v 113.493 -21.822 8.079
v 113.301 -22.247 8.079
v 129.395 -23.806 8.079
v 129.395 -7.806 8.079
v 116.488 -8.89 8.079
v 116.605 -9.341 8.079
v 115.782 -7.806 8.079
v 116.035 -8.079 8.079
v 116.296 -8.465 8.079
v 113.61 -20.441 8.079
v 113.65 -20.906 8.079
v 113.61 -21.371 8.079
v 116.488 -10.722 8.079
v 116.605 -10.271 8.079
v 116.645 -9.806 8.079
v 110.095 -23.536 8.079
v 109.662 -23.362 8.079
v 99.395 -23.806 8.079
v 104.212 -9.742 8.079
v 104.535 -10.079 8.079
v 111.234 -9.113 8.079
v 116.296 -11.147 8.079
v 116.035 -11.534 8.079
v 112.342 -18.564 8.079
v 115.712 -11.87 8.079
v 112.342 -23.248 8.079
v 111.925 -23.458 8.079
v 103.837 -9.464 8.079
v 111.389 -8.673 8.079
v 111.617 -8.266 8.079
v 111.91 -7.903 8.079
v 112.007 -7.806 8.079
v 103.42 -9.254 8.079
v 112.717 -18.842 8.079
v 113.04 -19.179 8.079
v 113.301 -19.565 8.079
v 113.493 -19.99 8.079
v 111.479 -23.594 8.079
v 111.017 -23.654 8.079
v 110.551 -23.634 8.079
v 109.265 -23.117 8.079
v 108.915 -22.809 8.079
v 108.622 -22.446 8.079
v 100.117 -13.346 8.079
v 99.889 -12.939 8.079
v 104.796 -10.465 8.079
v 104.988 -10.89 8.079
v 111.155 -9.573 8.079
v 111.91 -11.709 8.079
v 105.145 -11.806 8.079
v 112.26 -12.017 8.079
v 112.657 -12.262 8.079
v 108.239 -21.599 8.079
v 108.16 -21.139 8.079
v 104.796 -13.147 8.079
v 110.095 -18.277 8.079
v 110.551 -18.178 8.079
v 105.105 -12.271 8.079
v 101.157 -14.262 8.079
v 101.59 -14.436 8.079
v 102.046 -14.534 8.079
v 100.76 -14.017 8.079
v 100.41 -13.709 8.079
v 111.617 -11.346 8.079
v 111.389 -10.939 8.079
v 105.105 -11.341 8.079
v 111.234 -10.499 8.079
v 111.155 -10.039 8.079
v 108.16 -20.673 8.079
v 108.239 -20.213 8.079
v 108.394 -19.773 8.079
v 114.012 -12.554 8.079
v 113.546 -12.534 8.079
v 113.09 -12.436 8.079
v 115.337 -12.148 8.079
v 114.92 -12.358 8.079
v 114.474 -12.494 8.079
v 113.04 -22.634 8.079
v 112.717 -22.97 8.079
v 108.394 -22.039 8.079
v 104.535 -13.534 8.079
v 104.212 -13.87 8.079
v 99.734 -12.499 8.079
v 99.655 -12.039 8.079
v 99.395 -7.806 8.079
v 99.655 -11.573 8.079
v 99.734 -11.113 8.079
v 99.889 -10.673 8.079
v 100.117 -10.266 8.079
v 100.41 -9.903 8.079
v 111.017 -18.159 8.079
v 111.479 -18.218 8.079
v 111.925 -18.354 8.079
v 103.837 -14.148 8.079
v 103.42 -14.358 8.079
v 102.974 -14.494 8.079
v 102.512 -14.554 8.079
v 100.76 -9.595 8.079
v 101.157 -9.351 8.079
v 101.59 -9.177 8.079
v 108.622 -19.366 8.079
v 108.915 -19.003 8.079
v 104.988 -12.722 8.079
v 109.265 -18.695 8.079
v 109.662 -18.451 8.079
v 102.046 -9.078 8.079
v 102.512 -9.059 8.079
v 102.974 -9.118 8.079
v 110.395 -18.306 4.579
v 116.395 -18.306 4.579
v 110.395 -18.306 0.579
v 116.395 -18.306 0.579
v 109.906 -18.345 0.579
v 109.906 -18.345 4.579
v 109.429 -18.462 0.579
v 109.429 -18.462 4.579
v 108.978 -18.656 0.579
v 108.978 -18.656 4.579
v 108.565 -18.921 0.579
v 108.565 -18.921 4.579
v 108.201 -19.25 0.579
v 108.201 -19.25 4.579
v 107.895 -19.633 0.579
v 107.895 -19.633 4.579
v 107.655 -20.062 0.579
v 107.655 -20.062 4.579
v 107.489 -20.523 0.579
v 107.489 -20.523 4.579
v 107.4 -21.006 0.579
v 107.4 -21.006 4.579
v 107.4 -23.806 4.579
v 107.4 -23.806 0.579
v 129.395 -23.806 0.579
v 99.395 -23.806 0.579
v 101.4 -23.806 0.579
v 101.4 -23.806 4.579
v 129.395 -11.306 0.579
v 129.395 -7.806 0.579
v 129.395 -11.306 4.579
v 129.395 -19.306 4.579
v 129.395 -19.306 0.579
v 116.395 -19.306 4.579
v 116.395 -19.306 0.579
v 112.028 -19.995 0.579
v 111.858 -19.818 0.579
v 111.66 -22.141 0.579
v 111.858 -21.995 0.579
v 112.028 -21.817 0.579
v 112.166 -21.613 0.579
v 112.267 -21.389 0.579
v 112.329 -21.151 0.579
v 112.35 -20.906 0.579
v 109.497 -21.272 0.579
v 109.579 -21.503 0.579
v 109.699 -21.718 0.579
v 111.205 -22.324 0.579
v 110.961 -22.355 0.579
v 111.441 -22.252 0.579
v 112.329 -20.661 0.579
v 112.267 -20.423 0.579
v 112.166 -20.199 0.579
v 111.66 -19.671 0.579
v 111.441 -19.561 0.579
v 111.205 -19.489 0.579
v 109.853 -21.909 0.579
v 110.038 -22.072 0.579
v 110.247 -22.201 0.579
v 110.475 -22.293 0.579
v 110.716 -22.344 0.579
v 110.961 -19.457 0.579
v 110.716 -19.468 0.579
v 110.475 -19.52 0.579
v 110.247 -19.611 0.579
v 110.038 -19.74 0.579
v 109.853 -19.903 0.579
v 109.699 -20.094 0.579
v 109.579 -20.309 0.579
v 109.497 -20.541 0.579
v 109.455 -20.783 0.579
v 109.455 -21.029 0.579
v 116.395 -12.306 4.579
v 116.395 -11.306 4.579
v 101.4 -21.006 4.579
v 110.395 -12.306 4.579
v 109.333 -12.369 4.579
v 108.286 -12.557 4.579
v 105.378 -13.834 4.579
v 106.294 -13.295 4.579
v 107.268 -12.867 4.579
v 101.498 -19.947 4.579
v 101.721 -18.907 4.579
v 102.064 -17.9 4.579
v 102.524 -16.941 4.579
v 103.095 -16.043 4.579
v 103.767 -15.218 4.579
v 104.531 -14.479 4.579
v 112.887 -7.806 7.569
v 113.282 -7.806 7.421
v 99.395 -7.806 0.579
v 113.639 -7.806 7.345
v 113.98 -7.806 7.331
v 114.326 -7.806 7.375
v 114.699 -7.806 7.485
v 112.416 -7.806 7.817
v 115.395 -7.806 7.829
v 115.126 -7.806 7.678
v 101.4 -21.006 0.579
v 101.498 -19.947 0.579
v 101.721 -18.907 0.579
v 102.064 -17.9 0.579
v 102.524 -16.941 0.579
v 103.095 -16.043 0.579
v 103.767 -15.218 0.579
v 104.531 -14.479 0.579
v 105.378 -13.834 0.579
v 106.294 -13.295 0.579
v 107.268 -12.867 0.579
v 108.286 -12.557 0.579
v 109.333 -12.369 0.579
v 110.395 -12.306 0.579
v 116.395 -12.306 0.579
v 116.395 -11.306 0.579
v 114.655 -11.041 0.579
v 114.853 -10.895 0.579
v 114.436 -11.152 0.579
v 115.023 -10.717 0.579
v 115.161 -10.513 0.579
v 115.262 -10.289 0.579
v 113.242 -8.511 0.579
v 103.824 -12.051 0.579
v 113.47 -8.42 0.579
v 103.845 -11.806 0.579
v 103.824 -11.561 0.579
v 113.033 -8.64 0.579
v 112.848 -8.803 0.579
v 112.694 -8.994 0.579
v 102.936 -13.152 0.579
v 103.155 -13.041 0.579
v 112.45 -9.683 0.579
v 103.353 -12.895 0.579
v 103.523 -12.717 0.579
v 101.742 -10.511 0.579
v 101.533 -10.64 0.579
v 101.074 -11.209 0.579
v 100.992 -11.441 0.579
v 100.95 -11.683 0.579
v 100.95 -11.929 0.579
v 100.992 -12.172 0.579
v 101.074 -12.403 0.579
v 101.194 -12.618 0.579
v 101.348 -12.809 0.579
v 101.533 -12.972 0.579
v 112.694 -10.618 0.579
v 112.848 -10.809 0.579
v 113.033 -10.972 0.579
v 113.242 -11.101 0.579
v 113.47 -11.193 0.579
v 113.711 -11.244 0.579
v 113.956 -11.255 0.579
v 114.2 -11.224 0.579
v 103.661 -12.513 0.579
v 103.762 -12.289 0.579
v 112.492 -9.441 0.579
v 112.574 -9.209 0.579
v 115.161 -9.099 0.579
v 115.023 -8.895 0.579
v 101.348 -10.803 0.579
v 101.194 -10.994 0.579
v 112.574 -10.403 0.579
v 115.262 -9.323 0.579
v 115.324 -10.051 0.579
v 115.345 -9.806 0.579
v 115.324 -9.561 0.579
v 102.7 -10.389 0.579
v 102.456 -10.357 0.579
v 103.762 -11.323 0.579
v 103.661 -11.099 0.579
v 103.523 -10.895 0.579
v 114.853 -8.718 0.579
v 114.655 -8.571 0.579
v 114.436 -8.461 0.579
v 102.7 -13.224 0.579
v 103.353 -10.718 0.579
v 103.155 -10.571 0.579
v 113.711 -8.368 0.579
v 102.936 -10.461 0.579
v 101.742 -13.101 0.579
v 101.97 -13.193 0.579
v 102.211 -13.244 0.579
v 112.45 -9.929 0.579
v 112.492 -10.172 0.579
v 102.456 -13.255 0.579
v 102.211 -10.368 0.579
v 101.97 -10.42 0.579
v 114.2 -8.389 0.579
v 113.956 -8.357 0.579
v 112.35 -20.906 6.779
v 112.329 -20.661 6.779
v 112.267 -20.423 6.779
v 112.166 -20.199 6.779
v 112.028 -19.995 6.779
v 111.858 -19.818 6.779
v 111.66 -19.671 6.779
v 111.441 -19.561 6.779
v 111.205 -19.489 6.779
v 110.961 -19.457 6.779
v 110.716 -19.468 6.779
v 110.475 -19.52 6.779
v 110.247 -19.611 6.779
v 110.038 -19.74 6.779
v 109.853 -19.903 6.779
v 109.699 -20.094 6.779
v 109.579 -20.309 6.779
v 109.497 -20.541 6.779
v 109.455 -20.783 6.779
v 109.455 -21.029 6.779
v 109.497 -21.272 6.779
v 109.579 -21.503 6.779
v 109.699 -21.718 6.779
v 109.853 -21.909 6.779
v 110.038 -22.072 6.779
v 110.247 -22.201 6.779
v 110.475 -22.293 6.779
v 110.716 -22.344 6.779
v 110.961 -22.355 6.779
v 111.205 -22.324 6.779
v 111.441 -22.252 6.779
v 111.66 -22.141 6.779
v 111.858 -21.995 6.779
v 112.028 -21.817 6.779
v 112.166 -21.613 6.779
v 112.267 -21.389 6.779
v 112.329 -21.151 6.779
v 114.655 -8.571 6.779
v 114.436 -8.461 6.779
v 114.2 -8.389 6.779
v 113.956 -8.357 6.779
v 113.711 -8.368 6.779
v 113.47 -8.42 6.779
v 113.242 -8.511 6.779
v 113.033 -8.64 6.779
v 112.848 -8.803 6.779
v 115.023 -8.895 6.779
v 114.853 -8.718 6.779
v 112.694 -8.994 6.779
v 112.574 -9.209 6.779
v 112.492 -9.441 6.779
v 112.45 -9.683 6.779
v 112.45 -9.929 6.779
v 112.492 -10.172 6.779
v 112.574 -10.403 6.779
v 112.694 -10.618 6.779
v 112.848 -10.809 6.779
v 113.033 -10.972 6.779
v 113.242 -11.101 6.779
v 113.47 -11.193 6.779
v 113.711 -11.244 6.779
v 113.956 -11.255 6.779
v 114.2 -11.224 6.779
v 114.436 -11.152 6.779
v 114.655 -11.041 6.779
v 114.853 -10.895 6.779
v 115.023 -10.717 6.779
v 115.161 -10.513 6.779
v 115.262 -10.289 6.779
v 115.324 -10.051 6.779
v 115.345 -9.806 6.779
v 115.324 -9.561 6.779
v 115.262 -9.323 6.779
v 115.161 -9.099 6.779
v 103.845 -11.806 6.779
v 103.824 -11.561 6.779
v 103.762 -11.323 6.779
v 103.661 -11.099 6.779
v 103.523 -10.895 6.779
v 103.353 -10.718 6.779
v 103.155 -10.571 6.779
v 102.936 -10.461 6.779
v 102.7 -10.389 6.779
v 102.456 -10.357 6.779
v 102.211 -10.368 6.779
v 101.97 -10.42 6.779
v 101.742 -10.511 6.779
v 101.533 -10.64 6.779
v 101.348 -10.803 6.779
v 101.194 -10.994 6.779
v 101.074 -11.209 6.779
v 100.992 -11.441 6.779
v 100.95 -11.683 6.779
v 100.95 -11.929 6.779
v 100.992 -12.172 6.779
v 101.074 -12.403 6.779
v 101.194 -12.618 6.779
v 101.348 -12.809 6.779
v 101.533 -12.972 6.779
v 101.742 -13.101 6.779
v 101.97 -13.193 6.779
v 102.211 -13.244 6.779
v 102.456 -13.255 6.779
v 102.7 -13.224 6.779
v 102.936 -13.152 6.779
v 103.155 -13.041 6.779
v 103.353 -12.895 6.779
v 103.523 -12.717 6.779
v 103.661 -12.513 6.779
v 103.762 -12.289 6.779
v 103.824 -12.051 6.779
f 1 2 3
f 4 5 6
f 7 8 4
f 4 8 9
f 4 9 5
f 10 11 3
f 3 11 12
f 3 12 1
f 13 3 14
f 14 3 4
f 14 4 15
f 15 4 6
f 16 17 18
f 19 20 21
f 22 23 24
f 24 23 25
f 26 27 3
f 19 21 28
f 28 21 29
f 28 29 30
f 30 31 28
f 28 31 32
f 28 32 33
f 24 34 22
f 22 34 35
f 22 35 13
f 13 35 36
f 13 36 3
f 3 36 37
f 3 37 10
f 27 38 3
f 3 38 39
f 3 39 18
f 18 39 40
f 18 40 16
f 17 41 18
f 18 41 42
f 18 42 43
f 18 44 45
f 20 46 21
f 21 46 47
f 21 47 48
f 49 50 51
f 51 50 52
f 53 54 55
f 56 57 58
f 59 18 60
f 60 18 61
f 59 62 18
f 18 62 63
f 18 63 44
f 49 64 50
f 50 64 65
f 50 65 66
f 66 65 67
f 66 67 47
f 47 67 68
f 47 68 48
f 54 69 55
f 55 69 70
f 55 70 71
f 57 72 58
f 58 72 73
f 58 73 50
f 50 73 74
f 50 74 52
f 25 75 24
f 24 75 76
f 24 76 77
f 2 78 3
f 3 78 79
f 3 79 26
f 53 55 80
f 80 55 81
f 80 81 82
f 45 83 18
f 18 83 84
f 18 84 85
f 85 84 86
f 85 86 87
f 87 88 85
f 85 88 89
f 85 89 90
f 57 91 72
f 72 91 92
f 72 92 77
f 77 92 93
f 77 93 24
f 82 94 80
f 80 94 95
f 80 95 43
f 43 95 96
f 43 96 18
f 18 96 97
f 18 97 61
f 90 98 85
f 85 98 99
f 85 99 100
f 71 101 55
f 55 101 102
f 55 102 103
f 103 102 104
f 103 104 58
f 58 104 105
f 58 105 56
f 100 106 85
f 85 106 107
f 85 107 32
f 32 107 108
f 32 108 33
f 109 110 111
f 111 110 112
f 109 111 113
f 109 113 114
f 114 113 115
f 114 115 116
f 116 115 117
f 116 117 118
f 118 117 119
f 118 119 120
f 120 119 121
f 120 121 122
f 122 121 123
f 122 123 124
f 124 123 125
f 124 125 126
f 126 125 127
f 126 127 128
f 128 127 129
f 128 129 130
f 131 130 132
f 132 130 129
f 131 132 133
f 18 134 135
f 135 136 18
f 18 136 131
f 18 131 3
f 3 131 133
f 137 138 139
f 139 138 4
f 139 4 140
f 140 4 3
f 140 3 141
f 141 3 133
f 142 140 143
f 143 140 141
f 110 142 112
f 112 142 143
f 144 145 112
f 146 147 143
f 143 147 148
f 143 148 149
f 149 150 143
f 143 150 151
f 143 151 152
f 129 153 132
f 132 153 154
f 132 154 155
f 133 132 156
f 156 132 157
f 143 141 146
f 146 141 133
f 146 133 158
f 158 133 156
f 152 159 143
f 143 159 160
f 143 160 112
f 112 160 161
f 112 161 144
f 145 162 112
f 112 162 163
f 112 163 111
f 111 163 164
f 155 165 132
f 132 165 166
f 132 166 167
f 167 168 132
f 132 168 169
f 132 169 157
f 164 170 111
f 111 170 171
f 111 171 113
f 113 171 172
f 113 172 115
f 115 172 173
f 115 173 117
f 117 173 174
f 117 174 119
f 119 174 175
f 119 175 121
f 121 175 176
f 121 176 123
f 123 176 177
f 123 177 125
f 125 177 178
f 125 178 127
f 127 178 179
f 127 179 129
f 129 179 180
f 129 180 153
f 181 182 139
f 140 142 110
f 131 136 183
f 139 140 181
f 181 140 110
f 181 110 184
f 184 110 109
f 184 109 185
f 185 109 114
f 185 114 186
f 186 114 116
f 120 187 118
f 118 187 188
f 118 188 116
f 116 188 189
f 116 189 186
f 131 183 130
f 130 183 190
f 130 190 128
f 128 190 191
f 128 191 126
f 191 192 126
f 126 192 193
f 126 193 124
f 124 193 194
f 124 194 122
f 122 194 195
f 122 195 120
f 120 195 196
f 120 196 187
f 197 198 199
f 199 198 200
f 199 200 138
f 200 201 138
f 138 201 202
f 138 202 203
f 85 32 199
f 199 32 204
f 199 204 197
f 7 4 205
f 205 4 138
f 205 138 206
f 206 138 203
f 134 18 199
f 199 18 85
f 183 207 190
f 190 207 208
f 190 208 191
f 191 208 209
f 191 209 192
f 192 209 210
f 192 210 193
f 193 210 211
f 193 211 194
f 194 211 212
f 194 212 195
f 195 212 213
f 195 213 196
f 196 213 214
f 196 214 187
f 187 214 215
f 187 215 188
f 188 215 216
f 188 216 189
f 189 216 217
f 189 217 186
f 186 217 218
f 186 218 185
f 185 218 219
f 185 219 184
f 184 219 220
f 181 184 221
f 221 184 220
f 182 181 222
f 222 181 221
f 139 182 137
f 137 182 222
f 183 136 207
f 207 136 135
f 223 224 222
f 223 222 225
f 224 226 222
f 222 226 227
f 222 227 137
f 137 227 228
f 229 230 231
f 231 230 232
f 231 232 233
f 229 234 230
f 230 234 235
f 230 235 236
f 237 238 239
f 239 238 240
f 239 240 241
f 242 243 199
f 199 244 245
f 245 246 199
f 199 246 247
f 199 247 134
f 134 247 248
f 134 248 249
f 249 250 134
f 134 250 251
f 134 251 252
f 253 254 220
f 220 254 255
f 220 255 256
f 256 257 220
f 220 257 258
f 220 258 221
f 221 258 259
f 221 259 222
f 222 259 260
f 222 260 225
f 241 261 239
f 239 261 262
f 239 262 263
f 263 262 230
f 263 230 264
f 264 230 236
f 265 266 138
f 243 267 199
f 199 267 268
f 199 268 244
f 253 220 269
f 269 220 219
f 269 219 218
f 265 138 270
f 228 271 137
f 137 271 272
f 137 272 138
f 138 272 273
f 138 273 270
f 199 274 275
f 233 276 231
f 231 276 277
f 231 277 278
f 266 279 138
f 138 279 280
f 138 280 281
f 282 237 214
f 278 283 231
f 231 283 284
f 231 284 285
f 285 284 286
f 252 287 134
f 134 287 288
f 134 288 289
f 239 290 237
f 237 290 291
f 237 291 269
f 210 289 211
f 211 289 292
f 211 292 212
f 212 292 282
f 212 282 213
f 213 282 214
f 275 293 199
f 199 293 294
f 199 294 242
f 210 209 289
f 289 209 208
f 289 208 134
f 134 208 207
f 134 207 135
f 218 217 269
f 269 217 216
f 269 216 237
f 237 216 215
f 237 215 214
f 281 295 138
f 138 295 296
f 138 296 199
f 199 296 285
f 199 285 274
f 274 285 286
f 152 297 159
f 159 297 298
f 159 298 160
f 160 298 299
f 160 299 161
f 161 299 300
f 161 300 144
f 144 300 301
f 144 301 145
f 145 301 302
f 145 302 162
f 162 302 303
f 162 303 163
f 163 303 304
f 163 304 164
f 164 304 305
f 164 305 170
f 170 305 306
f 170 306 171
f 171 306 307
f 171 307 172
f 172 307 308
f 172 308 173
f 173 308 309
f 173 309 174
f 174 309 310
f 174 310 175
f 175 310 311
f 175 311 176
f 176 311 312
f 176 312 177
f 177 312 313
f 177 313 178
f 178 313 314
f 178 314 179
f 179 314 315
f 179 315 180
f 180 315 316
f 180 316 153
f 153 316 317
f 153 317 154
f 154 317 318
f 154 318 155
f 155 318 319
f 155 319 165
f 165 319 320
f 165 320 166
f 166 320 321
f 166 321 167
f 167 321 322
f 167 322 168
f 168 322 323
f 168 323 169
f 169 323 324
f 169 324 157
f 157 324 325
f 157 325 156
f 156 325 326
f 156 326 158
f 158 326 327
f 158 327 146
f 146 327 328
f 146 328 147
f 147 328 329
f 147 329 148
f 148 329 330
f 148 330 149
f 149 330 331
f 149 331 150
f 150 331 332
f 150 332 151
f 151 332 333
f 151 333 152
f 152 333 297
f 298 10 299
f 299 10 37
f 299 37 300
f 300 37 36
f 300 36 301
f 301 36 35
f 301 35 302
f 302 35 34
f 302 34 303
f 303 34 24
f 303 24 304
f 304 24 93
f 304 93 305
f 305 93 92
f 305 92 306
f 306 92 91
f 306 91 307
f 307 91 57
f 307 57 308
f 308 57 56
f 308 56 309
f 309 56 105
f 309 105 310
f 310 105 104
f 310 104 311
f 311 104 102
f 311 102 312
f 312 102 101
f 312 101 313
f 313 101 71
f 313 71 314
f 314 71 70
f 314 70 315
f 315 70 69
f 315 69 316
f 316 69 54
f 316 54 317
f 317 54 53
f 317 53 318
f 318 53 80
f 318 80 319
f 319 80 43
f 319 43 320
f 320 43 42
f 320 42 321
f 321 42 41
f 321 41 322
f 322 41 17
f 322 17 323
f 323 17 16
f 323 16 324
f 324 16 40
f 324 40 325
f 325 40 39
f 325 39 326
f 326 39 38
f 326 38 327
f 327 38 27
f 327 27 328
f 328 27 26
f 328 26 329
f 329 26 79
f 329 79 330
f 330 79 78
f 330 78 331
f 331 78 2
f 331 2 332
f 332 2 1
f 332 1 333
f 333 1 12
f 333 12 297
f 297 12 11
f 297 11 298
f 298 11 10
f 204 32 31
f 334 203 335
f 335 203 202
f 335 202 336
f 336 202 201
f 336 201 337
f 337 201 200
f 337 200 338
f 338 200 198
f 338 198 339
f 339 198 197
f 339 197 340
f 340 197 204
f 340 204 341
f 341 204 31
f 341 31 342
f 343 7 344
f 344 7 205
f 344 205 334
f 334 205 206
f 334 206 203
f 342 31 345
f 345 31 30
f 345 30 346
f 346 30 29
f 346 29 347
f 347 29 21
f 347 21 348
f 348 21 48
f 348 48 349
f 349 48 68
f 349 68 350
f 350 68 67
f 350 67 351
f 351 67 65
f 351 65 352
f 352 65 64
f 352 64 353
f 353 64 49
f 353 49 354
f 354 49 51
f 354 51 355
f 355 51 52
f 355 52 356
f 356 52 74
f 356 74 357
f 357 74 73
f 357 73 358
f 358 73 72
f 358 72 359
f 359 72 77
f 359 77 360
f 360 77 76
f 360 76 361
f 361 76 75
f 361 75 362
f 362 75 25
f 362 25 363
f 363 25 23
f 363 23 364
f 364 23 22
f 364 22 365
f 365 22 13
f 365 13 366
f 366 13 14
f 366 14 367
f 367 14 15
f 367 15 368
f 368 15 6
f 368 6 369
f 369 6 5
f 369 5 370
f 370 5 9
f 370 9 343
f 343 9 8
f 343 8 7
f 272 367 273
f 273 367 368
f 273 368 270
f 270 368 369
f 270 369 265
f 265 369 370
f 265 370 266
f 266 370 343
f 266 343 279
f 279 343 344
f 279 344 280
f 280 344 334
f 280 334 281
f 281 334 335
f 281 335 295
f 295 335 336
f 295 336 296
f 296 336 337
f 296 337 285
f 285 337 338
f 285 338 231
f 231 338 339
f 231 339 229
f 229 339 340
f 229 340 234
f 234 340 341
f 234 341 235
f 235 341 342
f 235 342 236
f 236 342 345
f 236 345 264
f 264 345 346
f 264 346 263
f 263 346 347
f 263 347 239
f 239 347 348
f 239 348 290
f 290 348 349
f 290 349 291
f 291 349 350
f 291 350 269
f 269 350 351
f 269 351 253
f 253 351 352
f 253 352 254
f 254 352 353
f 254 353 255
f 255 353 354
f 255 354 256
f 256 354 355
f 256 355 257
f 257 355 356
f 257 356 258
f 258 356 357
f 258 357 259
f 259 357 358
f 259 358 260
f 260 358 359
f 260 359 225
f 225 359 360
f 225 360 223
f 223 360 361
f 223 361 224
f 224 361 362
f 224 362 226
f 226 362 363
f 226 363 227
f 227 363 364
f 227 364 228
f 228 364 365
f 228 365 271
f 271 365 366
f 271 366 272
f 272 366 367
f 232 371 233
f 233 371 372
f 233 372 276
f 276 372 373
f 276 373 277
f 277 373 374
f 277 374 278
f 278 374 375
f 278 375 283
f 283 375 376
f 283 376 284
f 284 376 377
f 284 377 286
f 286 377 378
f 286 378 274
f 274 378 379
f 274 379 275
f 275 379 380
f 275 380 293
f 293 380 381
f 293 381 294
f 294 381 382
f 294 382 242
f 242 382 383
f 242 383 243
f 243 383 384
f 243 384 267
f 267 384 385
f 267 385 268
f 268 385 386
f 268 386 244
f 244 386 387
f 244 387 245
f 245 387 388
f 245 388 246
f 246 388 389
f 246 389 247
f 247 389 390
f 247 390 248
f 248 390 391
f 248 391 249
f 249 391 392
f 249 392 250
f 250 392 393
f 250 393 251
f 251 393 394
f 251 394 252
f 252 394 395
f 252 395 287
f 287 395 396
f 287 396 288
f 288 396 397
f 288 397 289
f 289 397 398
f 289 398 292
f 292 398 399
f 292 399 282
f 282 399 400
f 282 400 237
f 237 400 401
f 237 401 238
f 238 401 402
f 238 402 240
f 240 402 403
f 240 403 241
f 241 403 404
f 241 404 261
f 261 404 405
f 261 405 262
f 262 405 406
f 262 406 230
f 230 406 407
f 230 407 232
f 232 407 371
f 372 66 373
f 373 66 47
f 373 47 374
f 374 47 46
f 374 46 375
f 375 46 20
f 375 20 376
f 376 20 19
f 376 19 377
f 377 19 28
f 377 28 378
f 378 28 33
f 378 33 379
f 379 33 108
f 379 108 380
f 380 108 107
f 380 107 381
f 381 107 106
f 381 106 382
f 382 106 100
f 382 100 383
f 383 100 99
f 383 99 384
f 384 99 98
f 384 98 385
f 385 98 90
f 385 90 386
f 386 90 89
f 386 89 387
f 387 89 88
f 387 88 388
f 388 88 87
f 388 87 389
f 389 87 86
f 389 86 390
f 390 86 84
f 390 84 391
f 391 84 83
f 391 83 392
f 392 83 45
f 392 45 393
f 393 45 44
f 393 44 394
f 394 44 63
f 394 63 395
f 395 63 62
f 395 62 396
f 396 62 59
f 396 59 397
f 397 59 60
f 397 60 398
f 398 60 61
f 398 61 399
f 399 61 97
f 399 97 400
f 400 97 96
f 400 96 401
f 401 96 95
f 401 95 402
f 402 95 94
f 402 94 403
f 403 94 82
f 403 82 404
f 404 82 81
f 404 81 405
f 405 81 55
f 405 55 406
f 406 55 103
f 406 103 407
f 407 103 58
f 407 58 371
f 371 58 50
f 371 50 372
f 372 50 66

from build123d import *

# Parameters (mm, degrees)
BOSS_EXTRUDE1_DEPTH                                  = 4
BOSS_EXTRUDE1_2_DEPTH                                = 4
SKETCH2_W                                            = 30
SKETCH2_H                                            = 16
BOSS_EXTRUDE2_DEPTH                                  = 3.5
CSK_FOR_M2_5_COUNTERSUNK_FLAT_HEAD_SCREW_D           = 2.9
CSK_FOR_M2_5_COUNTERSUNK_FLAT_HEAD_SCREW_CSINK_D     = 5.5
CSK_FOR_M2_5_COUNTERSUNK_FLAT_HEAD_SCREW_CSINK_ANGLE = 90


with BuildPart() as part:
    # Sketch1 → Boss-Extrude1 (new body)
    with BuildSketch(Plane.XY.offset(0.579115056)):
        with BuildLine():
            Line((110.394950361, -18.30613426), (116.394950361, -18.30613426))
            Line((116.394950361, -18.30613426), (116.394950361, -19.30613426))
            Line((116.394950361, -19.30613426), (129.394950361, -19.30613426))
            Line((129.394950361, -19.30613426), (129.394950361, -23.80613426))
            Line((129.394950361, -23.80613426), (107.399951751, -23.80613426))
            Line((107.399951751, -23.80613426), (107.399951751, -21.00613426))
            ThreePointArc((107.399951751, -21.00613426), (108.376172059, -19.077900974), (110.394950361, -18.30613426))
        make_face()
    extrude(amount=BOSS_EXTRUDE1_DEPTH)



with BuildPart() as body_2:
    # Sketch1 → Boss-Extrude1 2 (new body)
    with BuildSketch(Plane.XY.offset(0.579115056)):
        with BuildLine():
            Line((101.399951751, -21.00613426), (101.399951751, -23.80613426))
            Line((101.399951751, -23.80613426), (99.394950361, -23.80613426))
            Line((99.394950361, -23.80613426), (99.394950361, -7.80613426))
            Line((99.394950361, -7.80613426), (129.394950361, -7.80613426))
            Line((129.394950361, -7.80613426), (129.394950361, -11.30613426))
            Line((129.394950361, -11.30613426), (116.394950361, -11.30613426))
            Line((116.394950361, -11.30613426), (116.394950361, -12.30613426))
            Line((116.394950361, -12.30613426), (110.394950361, -12.30613426))
            ThreePointArc((110.394950361, -12.30613426), (104.137954277, -14.836976664), (101.399951751, -21.00613426))
        make_face()
    extrude(amount=BOSS_EXTRUDE1_2_DEPTH)


with BuildPart() as part_1:
    add(part.part)

    add(body_2.part)  # Boss-Extrude2 merges body 2
    # Sketch2 → Boss-Extrude2 (add)
    with BuildSketch(Plane.XY.offset(4.579115056)):
        with Locations((114.394950361, -15.80613426)):
            Rectangle(SKETCH2_W, SKETCH2_H)
    extrude(amount=BOSS_EXTRUDE2_DEPTH)

    # CSK for M2.5 Countersunk Flat Head Screw1 (through all)
    with Locations(Plane.XY.offset(8.079115056)):
        with Locations((102.394950361, -11.80613426), (113.894950361, -9.80613426), (110.899951751, -20.90613426)):
            CounterSinkHole(CSK_FOR_M2_5_COUNTERSUNK_FLAT_HEAD_SCREW_D / 2, CSK_FOR_M2_5_COUNTERSUNK_FLAT_HEAD_SCREW_CSINK_D / 2, counter_sink_angle=CSK_FOR_M2_5_COUNTERSUNK_FLAT_HEAD_SCREW_CSINK_ANGLE)


solid = part_1.part
